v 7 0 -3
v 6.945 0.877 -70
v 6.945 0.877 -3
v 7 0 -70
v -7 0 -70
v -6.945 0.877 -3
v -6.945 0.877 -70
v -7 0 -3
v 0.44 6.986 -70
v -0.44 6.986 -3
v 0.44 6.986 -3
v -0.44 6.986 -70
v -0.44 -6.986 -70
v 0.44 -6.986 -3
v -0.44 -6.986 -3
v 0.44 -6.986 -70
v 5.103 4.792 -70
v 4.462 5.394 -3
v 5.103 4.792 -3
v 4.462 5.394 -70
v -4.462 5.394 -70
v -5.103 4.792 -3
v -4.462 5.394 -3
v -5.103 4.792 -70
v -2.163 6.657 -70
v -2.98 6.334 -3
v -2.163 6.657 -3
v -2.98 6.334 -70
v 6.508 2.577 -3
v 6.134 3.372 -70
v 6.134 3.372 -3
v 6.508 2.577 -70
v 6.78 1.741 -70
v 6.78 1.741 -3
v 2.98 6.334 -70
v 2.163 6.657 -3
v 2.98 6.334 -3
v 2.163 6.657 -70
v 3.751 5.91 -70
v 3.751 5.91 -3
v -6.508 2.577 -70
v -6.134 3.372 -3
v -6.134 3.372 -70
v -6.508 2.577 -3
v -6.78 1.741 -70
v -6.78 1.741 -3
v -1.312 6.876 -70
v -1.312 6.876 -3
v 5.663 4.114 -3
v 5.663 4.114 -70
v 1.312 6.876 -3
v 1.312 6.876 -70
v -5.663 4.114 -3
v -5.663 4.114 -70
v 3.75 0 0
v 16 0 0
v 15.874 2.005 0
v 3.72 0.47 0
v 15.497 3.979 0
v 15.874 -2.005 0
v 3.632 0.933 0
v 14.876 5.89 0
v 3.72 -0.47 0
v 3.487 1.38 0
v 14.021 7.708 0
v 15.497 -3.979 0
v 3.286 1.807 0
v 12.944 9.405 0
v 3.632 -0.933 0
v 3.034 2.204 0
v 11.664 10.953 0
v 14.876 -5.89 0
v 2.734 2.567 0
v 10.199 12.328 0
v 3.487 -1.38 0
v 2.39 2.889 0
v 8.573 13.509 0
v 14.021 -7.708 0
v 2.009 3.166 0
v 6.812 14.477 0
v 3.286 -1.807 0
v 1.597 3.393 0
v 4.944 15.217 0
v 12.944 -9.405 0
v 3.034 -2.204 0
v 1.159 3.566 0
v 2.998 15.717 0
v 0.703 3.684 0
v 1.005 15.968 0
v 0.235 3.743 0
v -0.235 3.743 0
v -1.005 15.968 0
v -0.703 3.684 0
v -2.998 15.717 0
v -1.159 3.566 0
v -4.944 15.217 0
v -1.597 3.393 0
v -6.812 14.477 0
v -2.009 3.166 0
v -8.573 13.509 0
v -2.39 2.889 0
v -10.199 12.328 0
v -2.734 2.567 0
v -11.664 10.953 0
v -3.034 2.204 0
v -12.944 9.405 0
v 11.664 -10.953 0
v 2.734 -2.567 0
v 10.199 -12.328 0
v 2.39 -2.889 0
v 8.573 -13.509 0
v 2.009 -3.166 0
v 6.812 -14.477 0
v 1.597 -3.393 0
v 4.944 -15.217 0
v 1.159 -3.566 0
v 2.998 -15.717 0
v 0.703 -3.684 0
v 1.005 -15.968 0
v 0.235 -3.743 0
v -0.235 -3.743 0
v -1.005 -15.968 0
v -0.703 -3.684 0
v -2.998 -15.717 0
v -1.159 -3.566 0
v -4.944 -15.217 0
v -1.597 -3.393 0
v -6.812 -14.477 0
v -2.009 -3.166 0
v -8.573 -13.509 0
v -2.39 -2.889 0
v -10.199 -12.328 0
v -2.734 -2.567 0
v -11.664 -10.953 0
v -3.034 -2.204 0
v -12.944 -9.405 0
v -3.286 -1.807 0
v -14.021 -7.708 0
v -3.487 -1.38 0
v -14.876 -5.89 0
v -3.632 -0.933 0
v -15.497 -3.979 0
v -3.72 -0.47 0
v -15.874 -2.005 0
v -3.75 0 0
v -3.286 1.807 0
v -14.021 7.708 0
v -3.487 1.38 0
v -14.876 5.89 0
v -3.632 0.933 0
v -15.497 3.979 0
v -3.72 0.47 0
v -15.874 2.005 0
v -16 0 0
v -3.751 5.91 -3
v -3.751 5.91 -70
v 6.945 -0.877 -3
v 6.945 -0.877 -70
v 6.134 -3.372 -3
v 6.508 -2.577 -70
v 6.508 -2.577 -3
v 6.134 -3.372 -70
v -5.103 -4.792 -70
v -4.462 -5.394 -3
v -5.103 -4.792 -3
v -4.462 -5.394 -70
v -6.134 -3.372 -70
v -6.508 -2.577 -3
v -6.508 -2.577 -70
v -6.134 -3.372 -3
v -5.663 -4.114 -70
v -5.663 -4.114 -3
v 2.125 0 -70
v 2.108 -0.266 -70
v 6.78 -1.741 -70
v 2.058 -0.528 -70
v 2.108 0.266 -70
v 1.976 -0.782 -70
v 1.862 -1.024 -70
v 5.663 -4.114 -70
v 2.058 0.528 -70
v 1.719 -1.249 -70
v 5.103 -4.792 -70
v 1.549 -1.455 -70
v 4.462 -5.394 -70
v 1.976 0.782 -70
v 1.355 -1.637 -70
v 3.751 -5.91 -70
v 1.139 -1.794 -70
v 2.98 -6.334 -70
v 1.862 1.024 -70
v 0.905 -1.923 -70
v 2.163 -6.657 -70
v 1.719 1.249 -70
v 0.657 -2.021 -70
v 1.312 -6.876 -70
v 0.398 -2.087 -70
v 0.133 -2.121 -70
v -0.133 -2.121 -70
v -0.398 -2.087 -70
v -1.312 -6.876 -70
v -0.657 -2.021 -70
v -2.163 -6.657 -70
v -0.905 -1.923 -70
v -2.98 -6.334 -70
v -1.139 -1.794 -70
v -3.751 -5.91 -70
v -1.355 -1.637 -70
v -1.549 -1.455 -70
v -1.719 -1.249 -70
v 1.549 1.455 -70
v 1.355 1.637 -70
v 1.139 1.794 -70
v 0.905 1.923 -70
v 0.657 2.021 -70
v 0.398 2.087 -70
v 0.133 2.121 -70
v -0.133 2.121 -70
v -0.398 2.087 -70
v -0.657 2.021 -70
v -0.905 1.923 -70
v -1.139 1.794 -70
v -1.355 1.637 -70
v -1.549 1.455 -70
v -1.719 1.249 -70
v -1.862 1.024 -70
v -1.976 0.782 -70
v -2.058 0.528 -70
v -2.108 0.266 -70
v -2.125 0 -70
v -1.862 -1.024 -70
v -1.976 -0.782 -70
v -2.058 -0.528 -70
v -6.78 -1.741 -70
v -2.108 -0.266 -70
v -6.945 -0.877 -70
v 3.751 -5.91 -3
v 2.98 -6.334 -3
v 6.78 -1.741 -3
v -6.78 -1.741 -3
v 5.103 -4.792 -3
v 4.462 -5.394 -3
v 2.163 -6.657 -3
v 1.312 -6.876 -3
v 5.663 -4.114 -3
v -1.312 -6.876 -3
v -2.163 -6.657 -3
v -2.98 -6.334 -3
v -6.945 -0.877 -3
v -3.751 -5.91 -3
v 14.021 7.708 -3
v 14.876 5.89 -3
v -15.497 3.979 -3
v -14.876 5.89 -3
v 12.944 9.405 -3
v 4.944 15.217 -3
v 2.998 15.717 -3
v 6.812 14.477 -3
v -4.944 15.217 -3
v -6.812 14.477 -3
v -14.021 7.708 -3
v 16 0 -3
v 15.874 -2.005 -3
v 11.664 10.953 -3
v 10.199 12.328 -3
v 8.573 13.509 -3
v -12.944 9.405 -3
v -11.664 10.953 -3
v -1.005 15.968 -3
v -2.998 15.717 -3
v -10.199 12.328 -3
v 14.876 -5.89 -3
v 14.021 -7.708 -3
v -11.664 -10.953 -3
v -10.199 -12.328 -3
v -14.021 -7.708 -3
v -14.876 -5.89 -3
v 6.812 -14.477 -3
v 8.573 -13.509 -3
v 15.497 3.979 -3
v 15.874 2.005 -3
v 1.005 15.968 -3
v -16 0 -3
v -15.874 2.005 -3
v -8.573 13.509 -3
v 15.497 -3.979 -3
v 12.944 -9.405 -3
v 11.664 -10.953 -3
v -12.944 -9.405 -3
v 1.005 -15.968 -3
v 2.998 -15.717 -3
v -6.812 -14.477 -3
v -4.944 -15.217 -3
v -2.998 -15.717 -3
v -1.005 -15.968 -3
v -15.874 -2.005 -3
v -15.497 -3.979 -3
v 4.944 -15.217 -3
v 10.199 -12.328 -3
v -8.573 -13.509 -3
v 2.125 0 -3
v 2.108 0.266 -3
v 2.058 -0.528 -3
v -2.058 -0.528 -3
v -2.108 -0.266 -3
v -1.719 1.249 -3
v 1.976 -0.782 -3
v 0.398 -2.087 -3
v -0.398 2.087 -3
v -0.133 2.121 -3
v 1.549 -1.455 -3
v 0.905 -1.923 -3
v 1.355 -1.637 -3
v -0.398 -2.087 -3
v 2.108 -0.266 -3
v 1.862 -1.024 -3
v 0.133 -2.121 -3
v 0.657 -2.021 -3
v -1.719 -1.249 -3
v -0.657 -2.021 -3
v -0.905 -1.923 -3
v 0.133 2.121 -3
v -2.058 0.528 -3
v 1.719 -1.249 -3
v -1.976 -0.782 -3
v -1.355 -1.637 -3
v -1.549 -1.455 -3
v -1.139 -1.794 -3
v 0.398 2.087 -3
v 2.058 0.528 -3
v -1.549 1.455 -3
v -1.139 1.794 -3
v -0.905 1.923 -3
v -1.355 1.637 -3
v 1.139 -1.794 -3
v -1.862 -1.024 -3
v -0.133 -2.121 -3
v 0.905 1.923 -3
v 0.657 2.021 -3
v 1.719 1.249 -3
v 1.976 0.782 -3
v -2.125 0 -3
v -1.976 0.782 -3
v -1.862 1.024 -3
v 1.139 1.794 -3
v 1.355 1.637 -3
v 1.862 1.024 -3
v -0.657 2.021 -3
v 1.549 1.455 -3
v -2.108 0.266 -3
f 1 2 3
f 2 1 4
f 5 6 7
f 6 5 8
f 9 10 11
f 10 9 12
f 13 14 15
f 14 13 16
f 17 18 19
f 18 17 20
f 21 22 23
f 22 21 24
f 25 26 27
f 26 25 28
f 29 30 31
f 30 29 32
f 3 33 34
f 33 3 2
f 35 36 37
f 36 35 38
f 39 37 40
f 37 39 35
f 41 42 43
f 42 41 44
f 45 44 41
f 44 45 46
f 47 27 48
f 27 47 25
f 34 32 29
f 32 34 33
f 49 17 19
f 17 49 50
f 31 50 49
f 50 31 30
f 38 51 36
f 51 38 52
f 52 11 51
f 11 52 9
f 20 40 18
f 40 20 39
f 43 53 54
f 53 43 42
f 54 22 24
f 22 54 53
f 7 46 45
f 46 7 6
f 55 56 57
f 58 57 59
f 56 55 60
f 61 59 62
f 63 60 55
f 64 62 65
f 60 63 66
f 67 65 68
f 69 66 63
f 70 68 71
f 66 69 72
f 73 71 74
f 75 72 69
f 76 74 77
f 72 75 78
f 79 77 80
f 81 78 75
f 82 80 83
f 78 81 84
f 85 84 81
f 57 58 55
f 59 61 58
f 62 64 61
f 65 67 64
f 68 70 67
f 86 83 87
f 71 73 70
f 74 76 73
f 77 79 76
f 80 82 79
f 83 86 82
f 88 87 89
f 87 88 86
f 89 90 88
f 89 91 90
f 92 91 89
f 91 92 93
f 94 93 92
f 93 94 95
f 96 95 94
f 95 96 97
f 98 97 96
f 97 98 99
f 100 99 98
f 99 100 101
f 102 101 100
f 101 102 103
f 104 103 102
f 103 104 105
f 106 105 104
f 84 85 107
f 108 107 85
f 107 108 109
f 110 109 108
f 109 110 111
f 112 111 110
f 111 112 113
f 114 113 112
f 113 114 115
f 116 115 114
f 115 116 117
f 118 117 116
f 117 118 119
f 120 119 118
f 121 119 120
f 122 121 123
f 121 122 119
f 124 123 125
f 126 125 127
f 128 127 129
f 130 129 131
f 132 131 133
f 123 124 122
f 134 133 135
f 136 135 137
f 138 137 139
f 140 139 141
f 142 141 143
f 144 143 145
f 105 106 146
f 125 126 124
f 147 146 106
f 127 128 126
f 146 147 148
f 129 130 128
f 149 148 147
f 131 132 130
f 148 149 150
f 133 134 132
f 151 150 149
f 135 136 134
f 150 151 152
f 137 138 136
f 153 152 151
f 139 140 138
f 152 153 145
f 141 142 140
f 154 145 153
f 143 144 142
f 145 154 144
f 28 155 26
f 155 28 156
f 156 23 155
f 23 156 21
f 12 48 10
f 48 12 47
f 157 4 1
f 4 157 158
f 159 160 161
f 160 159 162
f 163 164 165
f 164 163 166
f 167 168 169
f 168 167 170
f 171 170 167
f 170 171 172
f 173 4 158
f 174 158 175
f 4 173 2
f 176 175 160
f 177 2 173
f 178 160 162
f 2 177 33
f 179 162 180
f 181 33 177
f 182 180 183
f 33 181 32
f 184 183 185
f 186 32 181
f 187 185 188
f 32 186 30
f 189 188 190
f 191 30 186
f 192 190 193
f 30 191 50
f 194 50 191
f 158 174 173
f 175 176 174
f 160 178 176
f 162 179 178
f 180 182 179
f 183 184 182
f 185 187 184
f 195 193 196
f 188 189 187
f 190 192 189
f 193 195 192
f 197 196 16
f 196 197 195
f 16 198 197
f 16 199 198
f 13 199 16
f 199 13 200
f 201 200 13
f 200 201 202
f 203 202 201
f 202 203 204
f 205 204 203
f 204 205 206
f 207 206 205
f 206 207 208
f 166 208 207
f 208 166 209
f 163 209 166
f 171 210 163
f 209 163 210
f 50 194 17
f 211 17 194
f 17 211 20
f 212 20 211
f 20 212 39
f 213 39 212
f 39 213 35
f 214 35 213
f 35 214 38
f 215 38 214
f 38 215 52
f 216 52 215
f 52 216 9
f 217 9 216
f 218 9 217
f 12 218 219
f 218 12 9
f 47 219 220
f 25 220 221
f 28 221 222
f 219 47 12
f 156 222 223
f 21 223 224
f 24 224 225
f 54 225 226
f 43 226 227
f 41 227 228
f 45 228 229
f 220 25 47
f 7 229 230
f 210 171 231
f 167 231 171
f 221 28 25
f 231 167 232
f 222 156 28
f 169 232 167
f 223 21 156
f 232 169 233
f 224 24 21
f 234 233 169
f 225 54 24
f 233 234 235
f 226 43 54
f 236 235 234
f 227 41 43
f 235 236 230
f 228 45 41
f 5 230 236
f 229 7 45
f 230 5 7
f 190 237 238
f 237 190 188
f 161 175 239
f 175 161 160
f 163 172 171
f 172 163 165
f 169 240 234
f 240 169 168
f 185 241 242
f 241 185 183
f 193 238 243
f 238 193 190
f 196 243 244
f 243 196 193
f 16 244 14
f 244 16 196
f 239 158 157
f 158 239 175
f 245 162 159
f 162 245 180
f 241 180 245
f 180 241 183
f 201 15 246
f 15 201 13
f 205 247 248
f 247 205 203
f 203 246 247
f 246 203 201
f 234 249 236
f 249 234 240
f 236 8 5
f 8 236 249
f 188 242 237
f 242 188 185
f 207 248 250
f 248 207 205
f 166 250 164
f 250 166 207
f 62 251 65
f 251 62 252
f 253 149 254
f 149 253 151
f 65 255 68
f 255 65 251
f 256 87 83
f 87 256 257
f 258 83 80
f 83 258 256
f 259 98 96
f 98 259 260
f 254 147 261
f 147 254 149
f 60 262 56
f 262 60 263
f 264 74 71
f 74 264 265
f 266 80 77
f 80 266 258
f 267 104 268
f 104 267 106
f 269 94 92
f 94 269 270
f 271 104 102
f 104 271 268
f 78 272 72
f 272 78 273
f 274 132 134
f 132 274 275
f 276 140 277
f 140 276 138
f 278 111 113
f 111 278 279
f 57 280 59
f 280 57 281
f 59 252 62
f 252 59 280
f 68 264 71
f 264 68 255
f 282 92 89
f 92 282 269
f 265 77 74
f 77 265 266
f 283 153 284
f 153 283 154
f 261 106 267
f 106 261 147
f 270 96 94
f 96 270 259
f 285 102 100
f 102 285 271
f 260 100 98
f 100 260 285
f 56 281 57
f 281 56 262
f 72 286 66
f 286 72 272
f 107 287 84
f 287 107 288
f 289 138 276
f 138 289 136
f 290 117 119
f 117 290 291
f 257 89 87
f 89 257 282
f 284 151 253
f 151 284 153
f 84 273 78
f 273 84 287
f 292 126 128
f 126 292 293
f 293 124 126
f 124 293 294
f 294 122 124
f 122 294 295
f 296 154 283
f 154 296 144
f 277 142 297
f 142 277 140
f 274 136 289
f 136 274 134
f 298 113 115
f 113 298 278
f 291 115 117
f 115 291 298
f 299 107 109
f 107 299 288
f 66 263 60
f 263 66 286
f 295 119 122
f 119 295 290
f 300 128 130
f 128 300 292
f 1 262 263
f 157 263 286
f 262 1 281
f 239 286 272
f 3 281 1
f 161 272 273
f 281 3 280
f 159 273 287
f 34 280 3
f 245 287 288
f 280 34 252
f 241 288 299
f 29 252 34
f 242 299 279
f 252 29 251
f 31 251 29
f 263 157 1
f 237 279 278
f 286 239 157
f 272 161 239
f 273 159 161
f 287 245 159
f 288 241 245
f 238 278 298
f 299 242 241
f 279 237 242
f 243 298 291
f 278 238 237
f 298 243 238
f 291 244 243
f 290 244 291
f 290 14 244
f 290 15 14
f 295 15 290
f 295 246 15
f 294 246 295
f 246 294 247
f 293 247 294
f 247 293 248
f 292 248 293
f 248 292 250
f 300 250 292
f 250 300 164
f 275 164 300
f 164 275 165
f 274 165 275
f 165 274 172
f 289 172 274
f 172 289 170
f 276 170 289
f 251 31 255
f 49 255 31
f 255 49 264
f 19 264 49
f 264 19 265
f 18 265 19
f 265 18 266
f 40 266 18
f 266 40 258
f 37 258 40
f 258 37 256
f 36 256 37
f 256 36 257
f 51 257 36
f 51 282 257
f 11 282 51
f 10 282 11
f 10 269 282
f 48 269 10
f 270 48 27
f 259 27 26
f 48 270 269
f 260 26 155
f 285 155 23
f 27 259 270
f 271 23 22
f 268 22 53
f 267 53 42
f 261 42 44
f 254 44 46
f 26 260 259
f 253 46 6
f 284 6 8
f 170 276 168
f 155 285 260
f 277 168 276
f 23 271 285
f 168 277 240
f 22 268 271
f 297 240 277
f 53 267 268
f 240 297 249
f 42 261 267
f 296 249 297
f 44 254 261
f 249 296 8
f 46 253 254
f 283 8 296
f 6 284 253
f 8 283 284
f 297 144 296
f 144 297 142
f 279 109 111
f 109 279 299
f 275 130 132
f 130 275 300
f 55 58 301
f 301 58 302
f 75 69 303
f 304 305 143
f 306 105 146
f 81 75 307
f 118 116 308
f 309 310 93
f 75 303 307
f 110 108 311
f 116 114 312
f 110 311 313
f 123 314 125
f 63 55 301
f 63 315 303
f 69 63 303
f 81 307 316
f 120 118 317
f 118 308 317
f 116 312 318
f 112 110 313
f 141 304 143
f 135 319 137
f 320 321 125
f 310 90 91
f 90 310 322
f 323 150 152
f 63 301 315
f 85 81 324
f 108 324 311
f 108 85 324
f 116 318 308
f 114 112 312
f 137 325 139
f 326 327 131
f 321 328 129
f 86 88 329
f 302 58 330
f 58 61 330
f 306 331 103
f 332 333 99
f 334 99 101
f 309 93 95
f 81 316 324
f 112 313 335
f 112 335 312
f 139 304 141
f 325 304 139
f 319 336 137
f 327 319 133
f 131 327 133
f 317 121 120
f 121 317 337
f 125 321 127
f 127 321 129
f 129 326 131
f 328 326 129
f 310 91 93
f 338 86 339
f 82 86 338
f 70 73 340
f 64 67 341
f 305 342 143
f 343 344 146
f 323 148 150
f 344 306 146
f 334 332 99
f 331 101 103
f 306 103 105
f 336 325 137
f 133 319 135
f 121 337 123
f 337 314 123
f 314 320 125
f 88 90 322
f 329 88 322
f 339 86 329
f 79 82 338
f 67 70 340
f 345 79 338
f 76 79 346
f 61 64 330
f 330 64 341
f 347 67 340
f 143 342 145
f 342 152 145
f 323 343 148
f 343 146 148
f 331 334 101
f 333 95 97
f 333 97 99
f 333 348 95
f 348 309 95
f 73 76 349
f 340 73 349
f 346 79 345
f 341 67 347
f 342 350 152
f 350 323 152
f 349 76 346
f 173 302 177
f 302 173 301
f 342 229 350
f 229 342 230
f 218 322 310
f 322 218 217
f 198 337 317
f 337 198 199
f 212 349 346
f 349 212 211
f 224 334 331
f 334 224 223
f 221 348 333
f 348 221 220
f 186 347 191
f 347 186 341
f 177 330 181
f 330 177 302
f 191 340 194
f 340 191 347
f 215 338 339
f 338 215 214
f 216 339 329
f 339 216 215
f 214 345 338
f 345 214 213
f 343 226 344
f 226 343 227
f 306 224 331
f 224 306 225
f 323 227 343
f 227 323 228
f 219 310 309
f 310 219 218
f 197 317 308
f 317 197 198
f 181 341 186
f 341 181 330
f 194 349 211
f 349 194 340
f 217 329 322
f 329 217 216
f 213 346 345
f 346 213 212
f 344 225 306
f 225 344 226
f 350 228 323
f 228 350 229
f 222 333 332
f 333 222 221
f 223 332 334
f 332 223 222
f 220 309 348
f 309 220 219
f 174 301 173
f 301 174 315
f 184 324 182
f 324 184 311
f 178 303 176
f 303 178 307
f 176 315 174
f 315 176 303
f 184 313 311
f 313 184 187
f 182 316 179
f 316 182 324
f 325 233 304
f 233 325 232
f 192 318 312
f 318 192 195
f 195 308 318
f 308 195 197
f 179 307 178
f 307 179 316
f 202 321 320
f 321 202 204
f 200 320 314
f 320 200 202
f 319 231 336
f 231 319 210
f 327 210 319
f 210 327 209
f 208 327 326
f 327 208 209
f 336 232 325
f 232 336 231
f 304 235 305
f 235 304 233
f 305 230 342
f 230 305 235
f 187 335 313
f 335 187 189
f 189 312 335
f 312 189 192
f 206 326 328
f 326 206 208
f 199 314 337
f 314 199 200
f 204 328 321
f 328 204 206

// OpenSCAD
$fn = 50;


difference() {
	union() {
		translate(v = [0, 0, -70.0000000000]) {
			cylinder(h = 70, r = 7.0000000000);
		}
		translate(v = [0, 0, -3.0000000000]) {
			cylinder(h = 3, r = 16.0000000000);
		}
	}
	union() {
		translate(v = [0, 0, 0]) {
			rotate(a = [0, 0, 0]) {
				difference() {
					union() {
						#translate(v = [0, 0, -70.0000000000]) {
							cylinder(h = 70, r = 2.0000000000);
						}
						#translate(v = [0, 0, -3]) {
							cylinder(h = 3, r1 = 2.1250000000, r2 = 3.7500000000);
						}
						#translate(v = [0, 0, -70.0000000000]) {
							cylinder(h = 70, r = 2.1250000000);
						}
						#translate(v = [0, 0, -70.0000000000]) {
							cylinder(h = 70, r = 2.0000000000);
						}
					}
					union();
				}
			}
		}
	}
}
